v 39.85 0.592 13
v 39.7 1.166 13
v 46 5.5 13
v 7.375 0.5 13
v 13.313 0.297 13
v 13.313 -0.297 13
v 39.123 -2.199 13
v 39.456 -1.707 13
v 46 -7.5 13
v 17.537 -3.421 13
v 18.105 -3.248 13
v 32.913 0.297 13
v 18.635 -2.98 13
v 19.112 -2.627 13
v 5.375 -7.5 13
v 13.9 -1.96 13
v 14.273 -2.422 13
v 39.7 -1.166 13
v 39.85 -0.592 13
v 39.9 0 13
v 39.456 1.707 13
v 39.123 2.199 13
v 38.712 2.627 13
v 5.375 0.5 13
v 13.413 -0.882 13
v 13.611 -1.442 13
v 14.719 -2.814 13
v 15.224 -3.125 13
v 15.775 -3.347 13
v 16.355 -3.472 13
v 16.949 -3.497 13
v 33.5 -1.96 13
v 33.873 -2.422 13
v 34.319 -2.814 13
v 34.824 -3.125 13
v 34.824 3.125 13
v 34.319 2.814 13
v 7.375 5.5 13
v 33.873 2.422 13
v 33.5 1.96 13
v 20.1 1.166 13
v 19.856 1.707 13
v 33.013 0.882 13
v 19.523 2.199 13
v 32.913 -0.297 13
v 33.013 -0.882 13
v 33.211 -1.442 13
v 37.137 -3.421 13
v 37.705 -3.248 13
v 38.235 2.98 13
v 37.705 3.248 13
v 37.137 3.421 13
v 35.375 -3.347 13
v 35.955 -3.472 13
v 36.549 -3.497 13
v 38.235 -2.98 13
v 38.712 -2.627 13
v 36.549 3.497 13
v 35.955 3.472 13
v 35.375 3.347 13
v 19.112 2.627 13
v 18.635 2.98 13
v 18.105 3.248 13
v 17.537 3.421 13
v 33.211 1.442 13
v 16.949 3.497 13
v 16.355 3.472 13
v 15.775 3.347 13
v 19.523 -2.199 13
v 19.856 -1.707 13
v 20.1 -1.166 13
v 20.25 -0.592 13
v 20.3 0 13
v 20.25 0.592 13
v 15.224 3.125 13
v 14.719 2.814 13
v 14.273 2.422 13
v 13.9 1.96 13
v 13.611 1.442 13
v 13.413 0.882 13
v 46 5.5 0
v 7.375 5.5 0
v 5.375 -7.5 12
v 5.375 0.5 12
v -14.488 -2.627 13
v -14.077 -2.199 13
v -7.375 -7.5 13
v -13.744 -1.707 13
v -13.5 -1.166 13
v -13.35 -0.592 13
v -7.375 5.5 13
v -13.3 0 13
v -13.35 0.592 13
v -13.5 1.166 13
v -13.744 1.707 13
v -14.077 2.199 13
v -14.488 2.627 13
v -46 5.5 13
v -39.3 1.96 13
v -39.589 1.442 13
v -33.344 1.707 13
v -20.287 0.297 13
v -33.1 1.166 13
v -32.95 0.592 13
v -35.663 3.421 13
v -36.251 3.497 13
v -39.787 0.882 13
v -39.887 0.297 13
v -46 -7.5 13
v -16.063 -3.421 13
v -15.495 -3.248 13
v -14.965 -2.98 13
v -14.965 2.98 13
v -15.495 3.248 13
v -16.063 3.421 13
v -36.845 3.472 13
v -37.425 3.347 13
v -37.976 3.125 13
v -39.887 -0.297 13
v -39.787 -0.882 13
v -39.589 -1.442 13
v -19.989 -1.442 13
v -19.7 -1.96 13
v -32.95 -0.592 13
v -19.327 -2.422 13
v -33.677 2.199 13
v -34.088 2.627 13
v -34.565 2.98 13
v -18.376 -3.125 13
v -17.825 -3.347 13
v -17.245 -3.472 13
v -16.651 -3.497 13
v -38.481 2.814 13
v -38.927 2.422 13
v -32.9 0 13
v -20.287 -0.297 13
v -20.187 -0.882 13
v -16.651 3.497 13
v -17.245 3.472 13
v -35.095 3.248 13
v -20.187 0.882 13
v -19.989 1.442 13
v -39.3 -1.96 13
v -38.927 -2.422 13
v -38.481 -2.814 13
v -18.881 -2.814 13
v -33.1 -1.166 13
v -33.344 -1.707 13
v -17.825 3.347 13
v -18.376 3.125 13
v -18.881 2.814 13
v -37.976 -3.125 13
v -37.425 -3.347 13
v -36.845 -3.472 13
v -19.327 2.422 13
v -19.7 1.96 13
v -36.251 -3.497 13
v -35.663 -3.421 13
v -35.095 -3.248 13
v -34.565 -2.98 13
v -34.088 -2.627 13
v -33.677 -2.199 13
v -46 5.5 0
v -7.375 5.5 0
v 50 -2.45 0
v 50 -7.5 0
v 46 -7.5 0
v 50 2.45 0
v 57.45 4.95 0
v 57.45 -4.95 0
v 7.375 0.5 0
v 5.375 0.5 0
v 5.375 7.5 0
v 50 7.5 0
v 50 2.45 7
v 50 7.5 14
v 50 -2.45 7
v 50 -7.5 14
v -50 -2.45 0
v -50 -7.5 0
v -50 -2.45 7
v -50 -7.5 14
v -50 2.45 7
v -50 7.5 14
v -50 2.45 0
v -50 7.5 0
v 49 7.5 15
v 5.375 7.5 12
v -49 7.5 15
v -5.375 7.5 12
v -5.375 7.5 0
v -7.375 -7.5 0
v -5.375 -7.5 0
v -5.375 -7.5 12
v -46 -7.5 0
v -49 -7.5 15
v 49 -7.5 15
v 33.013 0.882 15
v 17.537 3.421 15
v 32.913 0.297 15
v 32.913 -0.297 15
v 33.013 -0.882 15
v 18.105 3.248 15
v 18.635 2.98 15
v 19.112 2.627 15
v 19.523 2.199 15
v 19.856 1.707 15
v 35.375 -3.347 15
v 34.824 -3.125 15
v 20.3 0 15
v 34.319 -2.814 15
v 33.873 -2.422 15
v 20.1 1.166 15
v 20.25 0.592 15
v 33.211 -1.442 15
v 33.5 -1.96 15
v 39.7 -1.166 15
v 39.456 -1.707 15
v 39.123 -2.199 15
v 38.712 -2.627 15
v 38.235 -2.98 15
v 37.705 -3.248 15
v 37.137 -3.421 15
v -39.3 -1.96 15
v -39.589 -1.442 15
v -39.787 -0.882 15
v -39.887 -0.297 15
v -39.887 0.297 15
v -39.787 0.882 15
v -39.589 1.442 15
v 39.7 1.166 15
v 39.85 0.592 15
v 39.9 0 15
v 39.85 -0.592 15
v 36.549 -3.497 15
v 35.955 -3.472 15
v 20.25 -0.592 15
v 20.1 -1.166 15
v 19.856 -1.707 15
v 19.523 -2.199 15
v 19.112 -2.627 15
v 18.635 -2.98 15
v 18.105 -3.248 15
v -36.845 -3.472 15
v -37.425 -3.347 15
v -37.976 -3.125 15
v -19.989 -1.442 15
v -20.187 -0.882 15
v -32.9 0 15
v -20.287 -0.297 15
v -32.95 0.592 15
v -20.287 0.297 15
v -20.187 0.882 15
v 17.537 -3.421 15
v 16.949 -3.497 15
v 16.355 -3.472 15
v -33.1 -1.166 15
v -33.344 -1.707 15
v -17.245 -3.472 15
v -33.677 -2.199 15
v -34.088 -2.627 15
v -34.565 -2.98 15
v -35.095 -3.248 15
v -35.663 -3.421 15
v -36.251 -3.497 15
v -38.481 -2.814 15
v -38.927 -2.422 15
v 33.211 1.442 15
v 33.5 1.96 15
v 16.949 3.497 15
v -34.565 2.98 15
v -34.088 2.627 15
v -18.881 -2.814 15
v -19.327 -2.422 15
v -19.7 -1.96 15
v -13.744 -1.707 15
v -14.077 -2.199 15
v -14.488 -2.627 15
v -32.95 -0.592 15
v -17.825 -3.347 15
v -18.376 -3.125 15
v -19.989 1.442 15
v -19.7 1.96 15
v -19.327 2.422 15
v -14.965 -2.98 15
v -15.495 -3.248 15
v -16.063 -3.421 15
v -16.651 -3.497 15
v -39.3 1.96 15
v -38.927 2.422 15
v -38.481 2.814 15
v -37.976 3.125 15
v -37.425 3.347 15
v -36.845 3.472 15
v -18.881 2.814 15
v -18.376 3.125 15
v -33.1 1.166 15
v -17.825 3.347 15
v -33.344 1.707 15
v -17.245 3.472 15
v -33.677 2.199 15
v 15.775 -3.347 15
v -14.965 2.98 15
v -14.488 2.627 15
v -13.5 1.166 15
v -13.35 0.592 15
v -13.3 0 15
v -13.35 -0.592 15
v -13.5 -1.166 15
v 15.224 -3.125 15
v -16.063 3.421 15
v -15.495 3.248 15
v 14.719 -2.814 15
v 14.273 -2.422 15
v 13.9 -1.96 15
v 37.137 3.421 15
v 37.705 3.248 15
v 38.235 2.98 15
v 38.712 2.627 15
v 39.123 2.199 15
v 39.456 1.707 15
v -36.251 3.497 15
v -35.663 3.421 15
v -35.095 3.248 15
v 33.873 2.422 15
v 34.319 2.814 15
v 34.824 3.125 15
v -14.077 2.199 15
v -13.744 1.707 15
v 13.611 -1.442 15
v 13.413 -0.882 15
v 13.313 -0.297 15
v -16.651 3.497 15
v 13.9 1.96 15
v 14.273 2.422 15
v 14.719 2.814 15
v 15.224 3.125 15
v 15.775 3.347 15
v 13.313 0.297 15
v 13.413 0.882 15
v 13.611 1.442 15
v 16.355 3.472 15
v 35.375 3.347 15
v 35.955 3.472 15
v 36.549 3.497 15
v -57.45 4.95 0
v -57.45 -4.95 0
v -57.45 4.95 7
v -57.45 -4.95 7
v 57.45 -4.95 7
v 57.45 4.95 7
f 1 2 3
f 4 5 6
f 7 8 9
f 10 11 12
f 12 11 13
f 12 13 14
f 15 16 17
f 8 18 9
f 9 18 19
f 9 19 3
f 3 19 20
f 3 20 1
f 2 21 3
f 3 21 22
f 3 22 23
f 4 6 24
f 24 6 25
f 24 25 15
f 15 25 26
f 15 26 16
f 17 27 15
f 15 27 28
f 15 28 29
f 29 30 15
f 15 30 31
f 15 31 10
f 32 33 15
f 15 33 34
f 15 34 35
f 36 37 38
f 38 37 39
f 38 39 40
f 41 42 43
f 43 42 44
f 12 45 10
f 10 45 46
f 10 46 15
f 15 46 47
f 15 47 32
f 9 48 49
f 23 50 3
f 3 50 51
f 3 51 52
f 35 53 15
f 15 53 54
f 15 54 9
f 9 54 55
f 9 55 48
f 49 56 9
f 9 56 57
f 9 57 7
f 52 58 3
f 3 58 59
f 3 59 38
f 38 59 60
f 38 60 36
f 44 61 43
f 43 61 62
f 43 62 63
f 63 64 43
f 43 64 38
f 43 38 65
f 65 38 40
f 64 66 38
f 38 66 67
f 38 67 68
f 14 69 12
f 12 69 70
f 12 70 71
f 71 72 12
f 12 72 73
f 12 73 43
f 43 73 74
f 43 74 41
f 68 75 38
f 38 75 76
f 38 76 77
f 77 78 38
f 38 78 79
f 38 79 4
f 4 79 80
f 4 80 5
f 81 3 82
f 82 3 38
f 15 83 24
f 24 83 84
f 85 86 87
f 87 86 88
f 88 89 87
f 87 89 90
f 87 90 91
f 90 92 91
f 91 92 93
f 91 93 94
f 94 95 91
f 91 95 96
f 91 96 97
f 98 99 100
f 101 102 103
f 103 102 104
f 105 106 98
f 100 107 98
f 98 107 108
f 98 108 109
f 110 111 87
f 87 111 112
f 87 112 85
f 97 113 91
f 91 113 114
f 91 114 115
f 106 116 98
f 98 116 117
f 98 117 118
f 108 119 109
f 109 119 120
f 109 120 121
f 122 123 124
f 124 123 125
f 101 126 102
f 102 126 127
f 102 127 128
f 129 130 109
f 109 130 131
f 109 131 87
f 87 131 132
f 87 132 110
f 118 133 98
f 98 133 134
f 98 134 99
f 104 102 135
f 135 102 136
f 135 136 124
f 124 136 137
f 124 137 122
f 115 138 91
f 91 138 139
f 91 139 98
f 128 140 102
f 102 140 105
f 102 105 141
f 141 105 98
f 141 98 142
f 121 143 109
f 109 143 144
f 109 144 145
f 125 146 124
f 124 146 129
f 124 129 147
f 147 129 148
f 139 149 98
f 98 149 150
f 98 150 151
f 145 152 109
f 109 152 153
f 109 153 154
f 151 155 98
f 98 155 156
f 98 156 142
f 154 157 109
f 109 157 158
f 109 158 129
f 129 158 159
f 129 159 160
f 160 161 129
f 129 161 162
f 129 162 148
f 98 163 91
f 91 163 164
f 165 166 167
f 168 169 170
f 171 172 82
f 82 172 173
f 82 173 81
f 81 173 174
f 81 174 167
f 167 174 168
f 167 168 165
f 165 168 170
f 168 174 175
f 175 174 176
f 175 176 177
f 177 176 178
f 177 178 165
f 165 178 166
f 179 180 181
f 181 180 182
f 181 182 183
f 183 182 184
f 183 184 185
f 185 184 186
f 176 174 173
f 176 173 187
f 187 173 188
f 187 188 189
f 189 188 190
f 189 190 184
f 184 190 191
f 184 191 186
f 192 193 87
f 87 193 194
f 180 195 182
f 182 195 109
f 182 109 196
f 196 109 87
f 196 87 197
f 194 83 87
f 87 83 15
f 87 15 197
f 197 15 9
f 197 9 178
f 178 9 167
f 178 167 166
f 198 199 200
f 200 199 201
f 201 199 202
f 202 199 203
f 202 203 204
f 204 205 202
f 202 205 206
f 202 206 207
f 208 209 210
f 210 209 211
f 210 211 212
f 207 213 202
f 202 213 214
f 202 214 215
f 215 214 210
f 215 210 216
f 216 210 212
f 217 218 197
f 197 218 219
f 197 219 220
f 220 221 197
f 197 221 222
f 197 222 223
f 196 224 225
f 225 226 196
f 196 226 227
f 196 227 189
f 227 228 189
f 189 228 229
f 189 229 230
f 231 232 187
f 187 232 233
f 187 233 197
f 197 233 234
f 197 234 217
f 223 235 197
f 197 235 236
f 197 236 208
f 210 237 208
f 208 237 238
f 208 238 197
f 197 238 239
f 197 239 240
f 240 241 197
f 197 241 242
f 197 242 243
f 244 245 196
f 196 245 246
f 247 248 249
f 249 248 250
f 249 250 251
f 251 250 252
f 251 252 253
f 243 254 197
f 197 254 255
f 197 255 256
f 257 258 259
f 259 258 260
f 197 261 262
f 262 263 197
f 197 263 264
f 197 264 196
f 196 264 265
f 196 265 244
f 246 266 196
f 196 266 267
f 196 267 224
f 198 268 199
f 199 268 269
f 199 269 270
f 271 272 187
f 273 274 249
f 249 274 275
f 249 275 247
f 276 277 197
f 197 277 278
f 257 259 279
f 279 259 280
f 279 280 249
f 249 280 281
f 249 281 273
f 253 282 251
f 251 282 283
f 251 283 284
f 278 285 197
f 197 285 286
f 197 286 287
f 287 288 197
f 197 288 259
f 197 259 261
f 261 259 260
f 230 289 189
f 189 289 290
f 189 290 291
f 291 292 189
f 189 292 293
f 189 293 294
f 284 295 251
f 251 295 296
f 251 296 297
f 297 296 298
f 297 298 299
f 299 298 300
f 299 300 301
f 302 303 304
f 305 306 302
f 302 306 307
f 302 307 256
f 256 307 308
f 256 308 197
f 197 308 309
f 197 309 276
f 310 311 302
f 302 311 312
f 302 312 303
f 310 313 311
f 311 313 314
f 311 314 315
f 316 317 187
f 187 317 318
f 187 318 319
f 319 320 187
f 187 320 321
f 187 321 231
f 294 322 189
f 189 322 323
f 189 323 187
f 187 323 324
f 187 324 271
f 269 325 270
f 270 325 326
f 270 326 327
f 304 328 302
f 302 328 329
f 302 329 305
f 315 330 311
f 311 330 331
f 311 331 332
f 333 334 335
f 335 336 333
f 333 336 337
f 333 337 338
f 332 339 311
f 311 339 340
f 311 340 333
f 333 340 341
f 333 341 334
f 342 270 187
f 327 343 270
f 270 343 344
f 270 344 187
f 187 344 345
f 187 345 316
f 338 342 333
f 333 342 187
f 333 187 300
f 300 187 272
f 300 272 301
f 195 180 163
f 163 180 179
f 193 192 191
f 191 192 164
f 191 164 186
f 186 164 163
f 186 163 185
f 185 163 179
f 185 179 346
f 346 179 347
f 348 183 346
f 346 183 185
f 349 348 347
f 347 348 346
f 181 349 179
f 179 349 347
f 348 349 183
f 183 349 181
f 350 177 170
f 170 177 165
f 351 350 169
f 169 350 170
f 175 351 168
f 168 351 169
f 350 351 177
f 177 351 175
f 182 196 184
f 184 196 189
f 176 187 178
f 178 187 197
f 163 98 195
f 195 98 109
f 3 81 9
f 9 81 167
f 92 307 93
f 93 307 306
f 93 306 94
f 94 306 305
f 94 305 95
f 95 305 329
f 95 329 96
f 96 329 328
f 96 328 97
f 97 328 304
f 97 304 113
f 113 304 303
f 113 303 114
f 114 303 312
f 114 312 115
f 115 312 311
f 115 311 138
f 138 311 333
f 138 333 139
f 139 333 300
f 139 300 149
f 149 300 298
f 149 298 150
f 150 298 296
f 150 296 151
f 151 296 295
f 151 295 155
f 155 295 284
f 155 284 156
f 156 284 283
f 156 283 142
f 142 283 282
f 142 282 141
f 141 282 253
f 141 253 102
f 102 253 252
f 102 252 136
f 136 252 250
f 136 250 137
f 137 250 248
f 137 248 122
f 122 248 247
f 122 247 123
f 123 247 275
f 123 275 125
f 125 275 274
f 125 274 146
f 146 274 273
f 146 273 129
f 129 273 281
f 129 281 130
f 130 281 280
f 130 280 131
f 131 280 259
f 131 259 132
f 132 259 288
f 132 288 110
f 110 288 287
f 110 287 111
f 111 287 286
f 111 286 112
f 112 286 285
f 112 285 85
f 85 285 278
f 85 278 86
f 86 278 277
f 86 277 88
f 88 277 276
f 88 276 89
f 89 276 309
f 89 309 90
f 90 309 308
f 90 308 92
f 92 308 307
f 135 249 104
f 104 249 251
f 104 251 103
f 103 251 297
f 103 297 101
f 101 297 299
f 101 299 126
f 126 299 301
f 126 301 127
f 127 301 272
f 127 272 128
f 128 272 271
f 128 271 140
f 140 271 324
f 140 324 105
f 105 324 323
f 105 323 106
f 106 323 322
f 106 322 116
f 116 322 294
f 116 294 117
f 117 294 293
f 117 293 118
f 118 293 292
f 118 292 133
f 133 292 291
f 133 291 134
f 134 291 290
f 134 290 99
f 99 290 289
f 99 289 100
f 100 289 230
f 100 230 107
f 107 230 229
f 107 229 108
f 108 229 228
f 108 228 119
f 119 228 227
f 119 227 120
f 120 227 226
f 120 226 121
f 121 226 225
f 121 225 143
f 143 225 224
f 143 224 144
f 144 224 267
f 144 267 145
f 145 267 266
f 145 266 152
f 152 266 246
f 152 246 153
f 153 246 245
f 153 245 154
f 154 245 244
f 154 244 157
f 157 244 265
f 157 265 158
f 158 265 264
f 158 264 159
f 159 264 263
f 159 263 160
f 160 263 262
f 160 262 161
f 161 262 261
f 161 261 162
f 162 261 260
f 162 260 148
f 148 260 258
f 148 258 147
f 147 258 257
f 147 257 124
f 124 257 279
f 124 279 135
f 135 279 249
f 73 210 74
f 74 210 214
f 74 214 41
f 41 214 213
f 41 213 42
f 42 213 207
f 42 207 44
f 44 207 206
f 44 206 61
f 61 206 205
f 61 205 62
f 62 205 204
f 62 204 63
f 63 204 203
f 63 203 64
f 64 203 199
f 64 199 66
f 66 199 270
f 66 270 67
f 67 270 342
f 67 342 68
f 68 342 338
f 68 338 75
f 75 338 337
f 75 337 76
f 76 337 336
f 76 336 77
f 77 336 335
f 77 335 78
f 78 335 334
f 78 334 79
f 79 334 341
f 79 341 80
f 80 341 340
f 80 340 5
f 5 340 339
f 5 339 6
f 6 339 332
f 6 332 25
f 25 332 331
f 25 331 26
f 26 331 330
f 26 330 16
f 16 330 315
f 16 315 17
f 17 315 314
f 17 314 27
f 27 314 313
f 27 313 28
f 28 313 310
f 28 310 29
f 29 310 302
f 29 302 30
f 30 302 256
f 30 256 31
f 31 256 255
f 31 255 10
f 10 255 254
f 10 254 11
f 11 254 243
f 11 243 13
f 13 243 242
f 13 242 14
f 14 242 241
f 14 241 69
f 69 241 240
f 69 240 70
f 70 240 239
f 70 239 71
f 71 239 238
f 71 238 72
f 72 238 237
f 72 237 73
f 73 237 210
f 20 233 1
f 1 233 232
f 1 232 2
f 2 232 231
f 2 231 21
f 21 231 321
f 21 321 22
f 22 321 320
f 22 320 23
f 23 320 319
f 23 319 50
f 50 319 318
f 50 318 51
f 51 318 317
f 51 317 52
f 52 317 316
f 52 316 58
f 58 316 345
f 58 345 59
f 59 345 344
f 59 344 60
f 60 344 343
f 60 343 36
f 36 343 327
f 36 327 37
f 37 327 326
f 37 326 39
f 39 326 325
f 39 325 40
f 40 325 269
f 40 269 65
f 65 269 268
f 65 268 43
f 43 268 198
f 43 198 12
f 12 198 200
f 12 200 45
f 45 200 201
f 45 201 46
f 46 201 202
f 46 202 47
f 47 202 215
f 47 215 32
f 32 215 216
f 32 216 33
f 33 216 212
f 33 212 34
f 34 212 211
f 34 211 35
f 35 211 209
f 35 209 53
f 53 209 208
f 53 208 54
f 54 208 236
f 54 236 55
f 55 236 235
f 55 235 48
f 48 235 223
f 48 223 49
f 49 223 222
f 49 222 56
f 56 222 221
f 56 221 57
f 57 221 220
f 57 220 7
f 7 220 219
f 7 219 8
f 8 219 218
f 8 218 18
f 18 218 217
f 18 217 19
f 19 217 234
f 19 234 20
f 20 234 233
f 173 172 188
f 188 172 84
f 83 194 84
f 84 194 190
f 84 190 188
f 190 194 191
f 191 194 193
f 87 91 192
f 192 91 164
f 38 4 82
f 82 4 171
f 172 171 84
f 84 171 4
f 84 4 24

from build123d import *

# Parameters (mm, degrees)
SKETCH1_W           = 100
SKETCH1_H           = 15
BODY_DEPTH          = 15
CLICK_DEPTH         = 7
CLICK_CHAMFER_SIZE  = 1
SKETCH3_W           = 92
SKETCH3_H           = 13
CUT_EXTRUDE1_DEPTH  = 13
SKETCH4_R           = 3.5
CUT_EXTRUDE2_DEPTH  = 13
SKETCH5_W           = 10.75
SKETCH5_H           = 12
CUT_EXTRUDE3_DEPTH  = 10
SKETCH6_W           = 10.75
SKETCH6_H           = 13
BOSS_EXTRUDE1_DEPTH = 1
SKETCH7_W           = 2
SKETCH7_H           = 13
BOSS_EXTRUDE2_DEPTH = 13
SKETCH8_W           = 2
SKETCH8_H           = 5
BOSS_EXTRUDE3_DEPTH = 13


with BuildPart() as part:
    # Sketch1 → Body (new body)
    with BuildSketch(Plane.XY):
        Rectangle(SKETCH1_W, SKETCH1_H)
    extrude(amount=BODY_DEPTH)

    # Sketch2 → Click (add)
    with BuildSketch(Plane.XY):
        Polygon((-50, 0), (-50, 2.45), (-57.45, 4.95), (-57.45, 0), (-57.45, -4.95), (-50, -2.45), align=None)
        Polygon((57.45, 0), (57.45, -4.95), (50, -2.45), (50, 0), (50, 2.45), (57.45, 4.95), align=None)
    extrude(amount=CLICK_DEPTH)

    # Click Chamfer
    click_chamfer_edges = [part.edges().sort_by_distance(p)[0] for p in [
        (-50, 0, 15),
        (50, 0, 15),
    ]]
    chamfer(click_chamfer_edges, length=CLICK_CHAMFER_SIZE)

    # Sketch3 → Cut-Extrude1 (cut)
    with BuildSketch(Plane.XZ.offset(7.5)):
        with Locations((0, 6.5)):
            Rectangle(SKETCH3_W, SKETCH3_H)
    extrude(amount=-CUT_EXTRUDE1_DEPTH, mode=Mode.SUBTRACT)

    # Sketch4 → Cut-Extrude2 (cut)
    with BuildSketch(Plane.XY.offset(15)):
        with Locations((-16.8, 0)):
            Circle(SKETCH4_R)
        with Locations((-36.4, 0)):
            Circle(SKETCH4_R)
        with Locations((16.8, 0)):
            Circle(SKETCH4_R)
        with Locations((36.4, 0)):
            Circle(SKETCH4_R)
    extrude(amount=-CUT_EXTRUDE2_DEPTH, mode=Mode.SUBTRACT)

    # Sketch5 → Cut-Extrude3 (cut)
    with BuildSketch(Plane(origin=(0, 7.5, 0), x_dir=(1, 0, 0), z_dir=(0, 1, 0))):
        with Locations((0, -6)):
            Rectangle(SKETCH5_W, SKETCH5_H)
    extrude(amount=-CUT_EXTRUDE3_DEPTH, mode=Mode.SUBTRACT)

    # Sketch6 → Boss-Extrude1 (add)
    with BuildSketch(Plane(origin=(0, 0, 13), x_dir=(-1, 0, 0), z_dir=(0, 0, -1))):
        with Locations((0, -1)):
            Rectangle(SKETCH6_W, SKETCH6_H)
    extrude(amount=BOSS_EXTRUDE1_DEPTH)

    # Sketch7 → Boss-Extrude2 (add)
    with BuildSketch(Plane(origin=(0, 0, 13), x_dir=(-1, 0, 0), z_dir=(0, 0, -1))):
        with Locations((6.375, -1)):
            Rectangle(SKETCH7_W, SKETCH7_H)
    extrude(amount=BOSS_EXTRUDE2_DEPTH)

    # Sketch8 → Boss-Extrude3 (add)
    with BuildSketch(Plane(origin=(0, 0, 13), x_dir=(-1, 0, 0), z_dir=(0, 0, -1))):
        with Locations((-6.375, 3)):
            Rectangle(SKETCH8_W, SKETCH8_H)
    extrude(amount=BOSS_EXTRUDE3_DEPTH)


solid = part.part
